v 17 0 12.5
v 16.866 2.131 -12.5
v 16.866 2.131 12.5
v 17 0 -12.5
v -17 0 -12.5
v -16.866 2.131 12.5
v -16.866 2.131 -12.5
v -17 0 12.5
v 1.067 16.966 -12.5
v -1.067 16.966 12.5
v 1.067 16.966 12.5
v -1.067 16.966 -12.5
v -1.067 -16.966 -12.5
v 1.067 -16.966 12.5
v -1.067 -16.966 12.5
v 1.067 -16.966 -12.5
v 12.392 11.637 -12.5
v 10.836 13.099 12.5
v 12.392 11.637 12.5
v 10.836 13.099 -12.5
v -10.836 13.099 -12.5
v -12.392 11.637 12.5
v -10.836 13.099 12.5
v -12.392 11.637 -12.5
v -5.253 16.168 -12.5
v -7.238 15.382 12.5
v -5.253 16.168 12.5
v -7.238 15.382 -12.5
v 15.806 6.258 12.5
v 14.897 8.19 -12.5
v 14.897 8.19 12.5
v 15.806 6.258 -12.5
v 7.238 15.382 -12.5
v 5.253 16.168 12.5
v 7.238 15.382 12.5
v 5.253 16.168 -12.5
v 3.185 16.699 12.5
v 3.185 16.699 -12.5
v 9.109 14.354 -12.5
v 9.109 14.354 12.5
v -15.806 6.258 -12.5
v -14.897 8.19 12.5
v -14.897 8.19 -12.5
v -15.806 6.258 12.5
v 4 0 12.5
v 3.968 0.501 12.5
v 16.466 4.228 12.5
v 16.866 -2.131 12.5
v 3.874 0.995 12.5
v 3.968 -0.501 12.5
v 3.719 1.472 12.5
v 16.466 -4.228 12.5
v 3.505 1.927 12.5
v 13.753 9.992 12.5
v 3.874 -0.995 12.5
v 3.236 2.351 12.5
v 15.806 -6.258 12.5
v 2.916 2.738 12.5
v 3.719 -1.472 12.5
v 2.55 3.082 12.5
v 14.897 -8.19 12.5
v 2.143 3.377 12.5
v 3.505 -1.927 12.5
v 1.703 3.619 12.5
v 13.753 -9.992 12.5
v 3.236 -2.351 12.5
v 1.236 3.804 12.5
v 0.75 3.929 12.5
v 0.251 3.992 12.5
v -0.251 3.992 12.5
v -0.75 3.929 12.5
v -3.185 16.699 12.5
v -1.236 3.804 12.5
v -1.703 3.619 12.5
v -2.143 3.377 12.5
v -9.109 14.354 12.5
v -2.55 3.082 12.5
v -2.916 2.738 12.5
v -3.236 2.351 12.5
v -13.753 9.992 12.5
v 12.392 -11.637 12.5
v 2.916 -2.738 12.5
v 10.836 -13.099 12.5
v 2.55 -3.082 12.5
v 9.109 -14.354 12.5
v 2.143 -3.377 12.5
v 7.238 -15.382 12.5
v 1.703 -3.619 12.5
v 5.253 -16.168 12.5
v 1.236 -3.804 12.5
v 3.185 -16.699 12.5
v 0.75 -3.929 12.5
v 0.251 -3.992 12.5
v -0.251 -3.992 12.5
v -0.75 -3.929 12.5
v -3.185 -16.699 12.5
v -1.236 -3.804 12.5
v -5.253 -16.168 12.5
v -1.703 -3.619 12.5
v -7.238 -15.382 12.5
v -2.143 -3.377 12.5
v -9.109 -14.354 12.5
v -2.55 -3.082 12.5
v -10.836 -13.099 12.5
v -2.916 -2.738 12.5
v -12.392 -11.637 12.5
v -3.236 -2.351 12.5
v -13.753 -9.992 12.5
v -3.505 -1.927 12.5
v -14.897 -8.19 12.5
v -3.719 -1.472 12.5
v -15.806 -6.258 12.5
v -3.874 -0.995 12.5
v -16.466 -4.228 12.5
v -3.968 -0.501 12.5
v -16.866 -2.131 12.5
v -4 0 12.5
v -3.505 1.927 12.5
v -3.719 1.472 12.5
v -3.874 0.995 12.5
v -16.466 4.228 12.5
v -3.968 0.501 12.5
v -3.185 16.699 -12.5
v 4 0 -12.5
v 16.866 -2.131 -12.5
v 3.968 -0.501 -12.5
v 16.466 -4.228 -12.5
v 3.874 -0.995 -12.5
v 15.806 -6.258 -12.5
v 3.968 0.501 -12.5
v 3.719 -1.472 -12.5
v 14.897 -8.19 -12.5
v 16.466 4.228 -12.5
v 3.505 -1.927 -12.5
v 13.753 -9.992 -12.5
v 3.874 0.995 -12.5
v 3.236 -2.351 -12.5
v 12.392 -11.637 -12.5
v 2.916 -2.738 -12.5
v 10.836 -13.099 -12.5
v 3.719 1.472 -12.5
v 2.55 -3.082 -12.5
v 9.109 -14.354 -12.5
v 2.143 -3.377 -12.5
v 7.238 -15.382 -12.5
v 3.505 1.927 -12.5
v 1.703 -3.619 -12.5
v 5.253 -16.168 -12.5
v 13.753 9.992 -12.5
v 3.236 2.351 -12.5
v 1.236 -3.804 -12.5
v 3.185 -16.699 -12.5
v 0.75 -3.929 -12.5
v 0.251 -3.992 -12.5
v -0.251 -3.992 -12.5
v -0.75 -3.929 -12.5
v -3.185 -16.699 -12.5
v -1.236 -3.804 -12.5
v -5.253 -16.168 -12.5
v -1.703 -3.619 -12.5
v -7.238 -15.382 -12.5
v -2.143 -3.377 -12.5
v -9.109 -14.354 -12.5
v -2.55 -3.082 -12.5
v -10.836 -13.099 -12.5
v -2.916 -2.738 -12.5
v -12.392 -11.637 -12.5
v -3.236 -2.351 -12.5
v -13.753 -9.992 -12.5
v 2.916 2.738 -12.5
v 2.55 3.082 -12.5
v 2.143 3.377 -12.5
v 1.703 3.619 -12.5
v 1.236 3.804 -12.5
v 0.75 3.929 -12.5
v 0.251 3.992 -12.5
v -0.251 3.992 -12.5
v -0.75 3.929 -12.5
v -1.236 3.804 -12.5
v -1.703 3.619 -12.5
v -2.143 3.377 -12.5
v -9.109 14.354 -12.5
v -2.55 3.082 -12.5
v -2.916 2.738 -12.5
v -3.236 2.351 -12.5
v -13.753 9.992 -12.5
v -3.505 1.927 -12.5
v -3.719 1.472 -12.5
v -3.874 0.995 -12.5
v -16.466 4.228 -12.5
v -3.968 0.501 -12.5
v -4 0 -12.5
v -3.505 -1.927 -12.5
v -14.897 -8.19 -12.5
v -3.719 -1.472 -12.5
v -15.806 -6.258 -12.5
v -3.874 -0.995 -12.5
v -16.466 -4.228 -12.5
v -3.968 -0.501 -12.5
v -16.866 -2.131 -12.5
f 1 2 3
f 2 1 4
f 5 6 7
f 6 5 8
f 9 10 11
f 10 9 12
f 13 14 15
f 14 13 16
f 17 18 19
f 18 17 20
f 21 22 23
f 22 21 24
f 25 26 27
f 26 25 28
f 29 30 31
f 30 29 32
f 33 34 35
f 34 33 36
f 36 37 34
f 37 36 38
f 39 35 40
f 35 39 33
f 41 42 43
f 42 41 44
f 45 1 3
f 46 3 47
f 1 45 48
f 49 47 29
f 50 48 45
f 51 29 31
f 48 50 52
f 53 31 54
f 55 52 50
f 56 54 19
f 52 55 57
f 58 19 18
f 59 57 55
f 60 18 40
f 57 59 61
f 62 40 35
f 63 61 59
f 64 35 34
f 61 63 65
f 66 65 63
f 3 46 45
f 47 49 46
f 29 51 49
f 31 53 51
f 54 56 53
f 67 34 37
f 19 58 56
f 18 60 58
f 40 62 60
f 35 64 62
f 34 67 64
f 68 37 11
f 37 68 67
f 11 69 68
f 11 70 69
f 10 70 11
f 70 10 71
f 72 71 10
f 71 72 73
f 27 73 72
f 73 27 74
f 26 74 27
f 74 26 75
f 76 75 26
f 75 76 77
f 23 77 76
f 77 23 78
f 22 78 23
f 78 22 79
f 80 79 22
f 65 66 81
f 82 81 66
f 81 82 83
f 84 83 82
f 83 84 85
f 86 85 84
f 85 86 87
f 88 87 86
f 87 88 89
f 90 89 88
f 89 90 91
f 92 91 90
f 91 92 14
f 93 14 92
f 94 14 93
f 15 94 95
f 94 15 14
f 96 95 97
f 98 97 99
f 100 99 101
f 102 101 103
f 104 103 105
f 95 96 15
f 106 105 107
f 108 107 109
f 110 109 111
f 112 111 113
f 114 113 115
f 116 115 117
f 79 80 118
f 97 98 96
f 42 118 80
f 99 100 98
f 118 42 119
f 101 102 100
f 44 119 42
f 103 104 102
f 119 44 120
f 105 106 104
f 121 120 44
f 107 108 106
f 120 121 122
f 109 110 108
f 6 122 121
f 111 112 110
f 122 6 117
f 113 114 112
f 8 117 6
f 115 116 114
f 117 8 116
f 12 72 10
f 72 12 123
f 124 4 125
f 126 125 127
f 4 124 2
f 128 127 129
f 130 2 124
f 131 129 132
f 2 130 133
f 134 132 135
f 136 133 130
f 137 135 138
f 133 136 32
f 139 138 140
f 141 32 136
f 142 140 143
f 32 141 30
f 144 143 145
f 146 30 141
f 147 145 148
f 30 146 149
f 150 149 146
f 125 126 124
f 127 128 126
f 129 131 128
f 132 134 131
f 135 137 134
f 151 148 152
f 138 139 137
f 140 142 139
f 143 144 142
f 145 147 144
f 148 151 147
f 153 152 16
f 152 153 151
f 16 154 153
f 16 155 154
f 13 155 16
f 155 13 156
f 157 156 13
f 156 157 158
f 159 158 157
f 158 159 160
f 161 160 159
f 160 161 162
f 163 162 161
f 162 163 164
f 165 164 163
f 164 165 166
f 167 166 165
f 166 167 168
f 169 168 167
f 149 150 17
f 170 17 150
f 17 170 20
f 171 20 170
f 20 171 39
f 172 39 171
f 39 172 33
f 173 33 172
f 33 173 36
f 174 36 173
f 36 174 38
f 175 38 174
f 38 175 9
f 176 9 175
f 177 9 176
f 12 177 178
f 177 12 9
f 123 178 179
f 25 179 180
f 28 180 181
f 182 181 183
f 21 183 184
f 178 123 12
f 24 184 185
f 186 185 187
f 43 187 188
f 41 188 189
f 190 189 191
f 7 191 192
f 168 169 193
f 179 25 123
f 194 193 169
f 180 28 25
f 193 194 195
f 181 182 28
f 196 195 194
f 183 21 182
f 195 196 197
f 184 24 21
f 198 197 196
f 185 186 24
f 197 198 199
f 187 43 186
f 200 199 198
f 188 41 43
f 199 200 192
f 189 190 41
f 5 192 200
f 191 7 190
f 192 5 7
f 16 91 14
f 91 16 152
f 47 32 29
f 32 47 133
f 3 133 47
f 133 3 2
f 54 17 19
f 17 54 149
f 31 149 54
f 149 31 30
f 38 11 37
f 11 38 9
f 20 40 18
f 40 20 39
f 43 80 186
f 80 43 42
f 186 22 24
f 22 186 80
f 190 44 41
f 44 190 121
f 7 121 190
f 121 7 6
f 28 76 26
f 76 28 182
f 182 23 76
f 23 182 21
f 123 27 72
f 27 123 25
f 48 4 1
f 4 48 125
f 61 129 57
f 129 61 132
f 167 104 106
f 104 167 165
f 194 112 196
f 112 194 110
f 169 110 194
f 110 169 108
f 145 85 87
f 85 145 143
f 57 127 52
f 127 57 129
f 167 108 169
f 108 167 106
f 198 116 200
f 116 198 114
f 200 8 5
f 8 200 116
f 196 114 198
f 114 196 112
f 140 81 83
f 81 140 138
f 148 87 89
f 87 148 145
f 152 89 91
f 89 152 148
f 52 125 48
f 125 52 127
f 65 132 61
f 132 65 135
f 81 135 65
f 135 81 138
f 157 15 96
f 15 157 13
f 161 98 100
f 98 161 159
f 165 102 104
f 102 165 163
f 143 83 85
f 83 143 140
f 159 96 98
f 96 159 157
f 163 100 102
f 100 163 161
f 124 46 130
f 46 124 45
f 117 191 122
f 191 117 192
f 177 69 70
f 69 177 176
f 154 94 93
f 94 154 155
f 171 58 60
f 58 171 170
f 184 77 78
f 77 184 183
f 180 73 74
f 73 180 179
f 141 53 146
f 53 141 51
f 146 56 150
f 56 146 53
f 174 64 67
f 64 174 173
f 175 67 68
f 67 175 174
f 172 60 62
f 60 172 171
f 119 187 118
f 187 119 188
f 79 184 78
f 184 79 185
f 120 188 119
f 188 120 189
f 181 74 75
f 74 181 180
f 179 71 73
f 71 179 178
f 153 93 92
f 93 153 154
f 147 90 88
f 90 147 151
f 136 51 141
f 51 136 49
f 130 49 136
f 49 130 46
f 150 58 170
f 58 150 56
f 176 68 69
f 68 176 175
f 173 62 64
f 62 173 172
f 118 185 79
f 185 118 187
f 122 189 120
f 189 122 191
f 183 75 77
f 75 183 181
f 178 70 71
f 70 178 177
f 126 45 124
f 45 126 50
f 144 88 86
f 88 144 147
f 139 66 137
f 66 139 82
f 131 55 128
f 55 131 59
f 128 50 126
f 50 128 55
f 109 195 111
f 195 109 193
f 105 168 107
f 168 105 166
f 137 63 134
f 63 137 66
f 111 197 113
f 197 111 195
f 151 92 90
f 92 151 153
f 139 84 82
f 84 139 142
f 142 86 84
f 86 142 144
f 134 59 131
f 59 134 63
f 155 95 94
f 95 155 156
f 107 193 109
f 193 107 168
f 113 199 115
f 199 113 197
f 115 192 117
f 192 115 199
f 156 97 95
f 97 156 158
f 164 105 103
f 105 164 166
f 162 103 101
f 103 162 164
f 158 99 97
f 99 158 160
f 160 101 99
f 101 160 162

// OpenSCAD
$fn = 50;


difference() {
	union() {
		translate(v = [0, 0, -12.5000000000]) {
			cylinder(h = 25, r = 17.0000000000);
		}
	}
	union() {
		translate(v = [0, 0, -100.0000000000]) {
			cylinder(h = 200, r = 4);
		}
	}
}
